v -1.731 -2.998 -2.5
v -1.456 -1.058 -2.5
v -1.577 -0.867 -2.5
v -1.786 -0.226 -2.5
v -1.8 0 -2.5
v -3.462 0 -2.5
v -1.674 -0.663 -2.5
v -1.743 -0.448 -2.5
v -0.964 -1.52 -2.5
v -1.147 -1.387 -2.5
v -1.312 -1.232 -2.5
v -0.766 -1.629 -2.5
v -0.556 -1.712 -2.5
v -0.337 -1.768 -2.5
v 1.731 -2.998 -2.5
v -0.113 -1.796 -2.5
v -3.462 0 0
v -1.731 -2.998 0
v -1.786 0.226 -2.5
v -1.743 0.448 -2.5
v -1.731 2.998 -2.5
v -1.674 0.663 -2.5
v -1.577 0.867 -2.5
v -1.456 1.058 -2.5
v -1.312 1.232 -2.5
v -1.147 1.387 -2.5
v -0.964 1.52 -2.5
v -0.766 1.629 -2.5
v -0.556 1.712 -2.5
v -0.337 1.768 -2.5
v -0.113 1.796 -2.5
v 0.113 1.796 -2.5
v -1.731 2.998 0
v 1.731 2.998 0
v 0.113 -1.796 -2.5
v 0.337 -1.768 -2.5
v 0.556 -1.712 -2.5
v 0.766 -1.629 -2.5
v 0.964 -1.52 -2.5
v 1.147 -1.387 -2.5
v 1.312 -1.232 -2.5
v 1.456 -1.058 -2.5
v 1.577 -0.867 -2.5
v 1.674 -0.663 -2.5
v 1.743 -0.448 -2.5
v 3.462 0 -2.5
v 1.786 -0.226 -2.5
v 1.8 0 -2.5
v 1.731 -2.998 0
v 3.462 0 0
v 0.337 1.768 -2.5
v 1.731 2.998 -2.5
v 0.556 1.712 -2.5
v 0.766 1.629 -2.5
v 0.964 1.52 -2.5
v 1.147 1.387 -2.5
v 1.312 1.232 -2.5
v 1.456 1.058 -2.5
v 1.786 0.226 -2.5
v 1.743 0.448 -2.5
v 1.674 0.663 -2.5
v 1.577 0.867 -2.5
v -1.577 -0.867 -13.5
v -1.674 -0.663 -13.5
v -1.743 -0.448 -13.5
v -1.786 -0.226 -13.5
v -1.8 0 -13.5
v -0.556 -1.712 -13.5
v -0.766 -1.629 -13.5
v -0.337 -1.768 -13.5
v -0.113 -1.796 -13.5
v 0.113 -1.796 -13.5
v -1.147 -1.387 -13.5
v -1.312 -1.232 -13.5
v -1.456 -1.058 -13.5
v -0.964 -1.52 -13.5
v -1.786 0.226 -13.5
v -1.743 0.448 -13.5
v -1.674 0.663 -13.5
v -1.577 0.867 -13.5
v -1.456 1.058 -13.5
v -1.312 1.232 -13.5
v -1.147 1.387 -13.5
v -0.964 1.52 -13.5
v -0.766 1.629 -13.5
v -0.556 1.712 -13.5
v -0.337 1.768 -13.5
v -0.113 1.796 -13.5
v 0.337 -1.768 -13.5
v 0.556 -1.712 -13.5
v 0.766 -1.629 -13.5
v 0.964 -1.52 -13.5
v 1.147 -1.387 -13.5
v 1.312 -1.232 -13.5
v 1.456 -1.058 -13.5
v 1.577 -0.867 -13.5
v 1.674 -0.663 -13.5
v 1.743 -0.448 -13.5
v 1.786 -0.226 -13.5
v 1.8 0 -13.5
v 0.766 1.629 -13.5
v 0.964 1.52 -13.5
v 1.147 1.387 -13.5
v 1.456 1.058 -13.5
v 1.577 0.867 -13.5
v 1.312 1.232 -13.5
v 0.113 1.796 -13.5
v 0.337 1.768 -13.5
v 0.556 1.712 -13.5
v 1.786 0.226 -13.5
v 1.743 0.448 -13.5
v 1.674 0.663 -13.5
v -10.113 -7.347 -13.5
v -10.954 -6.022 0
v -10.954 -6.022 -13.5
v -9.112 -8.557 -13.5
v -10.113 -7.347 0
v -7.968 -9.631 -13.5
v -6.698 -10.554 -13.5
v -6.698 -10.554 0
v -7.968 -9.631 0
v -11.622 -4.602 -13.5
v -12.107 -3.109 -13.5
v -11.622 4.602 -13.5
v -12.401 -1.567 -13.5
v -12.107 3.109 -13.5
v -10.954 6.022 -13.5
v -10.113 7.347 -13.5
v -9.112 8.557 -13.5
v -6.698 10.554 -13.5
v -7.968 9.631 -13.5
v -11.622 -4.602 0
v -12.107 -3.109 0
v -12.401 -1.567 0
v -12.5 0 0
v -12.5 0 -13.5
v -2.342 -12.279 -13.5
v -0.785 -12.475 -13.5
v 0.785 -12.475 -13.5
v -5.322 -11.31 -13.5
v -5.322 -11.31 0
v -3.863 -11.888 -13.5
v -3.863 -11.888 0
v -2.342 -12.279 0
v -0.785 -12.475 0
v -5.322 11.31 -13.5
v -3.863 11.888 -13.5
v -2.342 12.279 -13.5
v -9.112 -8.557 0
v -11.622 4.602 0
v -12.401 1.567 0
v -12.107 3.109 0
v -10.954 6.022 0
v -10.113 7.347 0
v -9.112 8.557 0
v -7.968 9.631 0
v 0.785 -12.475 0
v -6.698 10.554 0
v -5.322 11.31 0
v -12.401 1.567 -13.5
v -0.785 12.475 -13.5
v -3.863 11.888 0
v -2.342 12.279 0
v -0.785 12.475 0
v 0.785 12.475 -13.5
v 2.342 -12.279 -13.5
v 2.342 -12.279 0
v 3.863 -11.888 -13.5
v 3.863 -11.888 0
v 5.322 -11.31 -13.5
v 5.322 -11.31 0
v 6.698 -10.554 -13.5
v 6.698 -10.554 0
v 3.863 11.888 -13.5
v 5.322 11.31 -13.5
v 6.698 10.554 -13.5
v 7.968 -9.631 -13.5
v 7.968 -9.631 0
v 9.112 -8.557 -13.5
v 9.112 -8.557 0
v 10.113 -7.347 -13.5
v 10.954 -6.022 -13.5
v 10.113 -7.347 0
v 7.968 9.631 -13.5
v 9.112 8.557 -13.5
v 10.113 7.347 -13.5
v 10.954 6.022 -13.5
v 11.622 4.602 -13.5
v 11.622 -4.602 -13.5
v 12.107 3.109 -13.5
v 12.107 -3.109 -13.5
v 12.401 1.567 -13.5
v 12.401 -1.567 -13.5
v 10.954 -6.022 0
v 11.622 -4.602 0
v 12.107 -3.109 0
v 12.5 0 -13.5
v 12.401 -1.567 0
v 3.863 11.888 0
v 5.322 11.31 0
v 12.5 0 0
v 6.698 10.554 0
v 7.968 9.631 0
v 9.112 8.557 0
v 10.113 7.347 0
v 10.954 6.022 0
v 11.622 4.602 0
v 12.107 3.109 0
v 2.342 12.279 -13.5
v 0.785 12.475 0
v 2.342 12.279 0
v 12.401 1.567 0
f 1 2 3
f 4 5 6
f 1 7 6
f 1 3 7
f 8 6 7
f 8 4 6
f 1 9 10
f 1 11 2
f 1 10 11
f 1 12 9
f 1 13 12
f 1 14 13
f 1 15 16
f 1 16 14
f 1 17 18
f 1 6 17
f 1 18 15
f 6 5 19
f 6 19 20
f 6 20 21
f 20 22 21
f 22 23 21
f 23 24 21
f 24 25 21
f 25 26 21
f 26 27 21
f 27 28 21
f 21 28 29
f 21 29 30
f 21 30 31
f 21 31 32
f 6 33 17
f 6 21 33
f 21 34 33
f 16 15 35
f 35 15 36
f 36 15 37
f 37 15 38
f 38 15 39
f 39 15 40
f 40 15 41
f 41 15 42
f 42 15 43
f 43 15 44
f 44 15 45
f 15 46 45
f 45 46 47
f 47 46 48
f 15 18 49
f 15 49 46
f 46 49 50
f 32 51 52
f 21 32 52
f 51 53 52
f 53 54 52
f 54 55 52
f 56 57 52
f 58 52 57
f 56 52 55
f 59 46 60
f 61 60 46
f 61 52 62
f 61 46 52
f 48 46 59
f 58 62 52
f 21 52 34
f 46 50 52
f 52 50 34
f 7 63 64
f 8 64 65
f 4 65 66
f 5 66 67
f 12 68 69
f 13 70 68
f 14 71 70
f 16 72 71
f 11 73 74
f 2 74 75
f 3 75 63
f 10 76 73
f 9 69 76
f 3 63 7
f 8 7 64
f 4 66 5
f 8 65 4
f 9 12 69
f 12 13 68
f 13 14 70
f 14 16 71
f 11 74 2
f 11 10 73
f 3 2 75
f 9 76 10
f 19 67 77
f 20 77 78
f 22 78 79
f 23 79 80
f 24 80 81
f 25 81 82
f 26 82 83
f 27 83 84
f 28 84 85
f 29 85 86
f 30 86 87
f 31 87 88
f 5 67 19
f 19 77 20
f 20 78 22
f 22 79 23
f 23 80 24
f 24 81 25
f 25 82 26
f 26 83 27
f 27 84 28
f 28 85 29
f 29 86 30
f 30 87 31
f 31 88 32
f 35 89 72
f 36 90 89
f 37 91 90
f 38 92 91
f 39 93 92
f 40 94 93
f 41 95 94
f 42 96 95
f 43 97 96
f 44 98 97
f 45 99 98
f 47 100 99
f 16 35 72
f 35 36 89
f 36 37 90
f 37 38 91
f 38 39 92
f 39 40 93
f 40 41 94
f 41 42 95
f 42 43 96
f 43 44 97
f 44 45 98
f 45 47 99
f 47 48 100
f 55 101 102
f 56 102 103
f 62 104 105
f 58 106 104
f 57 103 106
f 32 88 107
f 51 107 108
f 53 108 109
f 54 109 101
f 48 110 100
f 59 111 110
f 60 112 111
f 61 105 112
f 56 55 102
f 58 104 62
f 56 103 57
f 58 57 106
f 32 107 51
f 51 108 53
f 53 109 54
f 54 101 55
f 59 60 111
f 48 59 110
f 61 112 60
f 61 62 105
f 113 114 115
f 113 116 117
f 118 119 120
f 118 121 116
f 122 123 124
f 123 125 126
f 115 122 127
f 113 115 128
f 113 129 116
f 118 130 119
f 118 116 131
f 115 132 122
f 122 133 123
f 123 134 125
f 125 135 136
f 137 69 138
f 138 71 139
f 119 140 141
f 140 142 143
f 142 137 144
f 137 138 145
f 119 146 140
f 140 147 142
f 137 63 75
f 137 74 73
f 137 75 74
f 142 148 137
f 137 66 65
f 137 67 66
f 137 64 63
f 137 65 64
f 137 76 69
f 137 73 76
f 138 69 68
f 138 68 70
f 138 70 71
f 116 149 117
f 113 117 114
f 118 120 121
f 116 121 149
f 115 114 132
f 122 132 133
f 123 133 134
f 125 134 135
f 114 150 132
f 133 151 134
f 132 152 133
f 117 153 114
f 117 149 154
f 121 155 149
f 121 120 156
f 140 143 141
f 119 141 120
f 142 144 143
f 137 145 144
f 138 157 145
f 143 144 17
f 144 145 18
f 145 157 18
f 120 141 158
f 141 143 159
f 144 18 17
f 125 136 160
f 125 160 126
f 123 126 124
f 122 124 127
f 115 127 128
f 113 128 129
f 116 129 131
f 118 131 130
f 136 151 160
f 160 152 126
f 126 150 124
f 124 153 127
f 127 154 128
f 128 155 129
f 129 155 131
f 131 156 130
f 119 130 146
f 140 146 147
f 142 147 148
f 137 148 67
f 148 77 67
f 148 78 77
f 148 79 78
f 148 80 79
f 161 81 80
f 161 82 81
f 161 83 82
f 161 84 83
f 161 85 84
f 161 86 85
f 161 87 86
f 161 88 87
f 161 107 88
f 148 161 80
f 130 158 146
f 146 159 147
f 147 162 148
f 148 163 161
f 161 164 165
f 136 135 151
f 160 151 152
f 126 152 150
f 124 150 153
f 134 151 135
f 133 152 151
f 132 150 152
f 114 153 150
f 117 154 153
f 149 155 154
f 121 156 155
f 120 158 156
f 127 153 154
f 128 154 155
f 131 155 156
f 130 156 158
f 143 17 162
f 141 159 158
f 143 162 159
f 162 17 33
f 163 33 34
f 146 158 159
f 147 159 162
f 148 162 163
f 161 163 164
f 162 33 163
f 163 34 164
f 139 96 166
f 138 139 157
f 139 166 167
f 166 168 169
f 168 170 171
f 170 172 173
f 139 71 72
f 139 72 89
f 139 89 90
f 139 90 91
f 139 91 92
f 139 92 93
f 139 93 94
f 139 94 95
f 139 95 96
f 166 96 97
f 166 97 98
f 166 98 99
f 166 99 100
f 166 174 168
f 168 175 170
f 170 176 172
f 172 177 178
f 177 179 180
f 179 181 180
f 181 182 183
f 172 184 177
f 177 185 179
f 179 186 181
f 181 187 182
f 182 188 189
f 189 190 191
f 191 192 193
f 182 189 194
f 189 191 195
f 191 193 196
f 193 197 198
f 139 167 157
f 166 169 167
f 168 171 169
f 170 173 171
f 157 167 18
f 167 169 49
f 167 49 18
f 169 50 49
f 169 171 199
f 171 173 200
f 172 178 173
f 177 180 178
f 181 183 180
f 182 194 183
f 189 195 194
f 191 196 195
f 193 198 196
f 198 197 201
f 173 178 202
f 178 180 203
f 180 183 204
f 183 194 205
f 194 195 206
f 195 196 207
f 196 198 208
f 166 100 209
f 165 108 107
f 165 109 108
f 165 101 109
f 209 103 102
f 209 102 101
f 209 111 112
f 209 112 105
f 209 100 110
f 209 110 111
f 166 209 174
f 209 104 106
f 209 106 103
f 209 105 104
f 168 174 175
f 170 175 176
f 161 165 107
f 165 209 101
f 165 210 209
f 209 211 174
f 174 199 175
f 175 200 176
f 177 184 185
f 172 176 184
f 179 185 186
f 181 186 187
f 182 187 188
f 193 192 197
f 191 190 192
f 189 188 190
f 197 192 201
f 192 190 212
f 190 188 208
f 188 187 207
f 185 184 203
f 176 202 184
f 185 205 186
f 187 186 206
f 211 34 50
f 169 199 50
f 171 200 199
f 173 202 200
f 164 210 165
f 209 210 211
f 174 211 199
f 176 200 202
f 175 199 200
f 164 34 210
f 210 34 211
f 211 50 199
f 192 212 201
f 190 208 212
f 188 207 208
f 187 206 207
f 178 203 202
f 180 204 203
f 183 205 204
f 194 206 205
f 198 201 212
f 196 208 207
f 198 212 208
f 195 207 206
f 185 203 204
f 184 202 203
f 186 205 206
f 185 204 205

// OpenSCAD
$fn = 50;

difference() {
	union() {
		translate(v = [0, 0, -13.5]) {
			cylinder(h = 13.5, r = 12.5);
		}
	}
	union() {
		translate(v = [0, 0, 0]) {
			rotate(a = [0, 0, 0]) {
				difference() {
					union() {
						translate(v = [0, 0, -2.5]) {
							linear_extrude(height = 2.5) {
								polygon(points = [[3.4619999999999997, 0.0], [1.7310000000000003, 2.9981799479017264], [-1.7309999999999992, 2.9981799479017264], [-3.4619999999999997, 4.2397272186481365e-16], [-1.7310000000000014, -2.998179947901726], [1.7309999999999977, -2.9981799479017277]]);
							}
						}
					}
					union();
				}
			}
		}
		#translate(v = [0, 0, -100.0]) {
			cylinder(h = 200, r = 1.8);
		}
	}
}
